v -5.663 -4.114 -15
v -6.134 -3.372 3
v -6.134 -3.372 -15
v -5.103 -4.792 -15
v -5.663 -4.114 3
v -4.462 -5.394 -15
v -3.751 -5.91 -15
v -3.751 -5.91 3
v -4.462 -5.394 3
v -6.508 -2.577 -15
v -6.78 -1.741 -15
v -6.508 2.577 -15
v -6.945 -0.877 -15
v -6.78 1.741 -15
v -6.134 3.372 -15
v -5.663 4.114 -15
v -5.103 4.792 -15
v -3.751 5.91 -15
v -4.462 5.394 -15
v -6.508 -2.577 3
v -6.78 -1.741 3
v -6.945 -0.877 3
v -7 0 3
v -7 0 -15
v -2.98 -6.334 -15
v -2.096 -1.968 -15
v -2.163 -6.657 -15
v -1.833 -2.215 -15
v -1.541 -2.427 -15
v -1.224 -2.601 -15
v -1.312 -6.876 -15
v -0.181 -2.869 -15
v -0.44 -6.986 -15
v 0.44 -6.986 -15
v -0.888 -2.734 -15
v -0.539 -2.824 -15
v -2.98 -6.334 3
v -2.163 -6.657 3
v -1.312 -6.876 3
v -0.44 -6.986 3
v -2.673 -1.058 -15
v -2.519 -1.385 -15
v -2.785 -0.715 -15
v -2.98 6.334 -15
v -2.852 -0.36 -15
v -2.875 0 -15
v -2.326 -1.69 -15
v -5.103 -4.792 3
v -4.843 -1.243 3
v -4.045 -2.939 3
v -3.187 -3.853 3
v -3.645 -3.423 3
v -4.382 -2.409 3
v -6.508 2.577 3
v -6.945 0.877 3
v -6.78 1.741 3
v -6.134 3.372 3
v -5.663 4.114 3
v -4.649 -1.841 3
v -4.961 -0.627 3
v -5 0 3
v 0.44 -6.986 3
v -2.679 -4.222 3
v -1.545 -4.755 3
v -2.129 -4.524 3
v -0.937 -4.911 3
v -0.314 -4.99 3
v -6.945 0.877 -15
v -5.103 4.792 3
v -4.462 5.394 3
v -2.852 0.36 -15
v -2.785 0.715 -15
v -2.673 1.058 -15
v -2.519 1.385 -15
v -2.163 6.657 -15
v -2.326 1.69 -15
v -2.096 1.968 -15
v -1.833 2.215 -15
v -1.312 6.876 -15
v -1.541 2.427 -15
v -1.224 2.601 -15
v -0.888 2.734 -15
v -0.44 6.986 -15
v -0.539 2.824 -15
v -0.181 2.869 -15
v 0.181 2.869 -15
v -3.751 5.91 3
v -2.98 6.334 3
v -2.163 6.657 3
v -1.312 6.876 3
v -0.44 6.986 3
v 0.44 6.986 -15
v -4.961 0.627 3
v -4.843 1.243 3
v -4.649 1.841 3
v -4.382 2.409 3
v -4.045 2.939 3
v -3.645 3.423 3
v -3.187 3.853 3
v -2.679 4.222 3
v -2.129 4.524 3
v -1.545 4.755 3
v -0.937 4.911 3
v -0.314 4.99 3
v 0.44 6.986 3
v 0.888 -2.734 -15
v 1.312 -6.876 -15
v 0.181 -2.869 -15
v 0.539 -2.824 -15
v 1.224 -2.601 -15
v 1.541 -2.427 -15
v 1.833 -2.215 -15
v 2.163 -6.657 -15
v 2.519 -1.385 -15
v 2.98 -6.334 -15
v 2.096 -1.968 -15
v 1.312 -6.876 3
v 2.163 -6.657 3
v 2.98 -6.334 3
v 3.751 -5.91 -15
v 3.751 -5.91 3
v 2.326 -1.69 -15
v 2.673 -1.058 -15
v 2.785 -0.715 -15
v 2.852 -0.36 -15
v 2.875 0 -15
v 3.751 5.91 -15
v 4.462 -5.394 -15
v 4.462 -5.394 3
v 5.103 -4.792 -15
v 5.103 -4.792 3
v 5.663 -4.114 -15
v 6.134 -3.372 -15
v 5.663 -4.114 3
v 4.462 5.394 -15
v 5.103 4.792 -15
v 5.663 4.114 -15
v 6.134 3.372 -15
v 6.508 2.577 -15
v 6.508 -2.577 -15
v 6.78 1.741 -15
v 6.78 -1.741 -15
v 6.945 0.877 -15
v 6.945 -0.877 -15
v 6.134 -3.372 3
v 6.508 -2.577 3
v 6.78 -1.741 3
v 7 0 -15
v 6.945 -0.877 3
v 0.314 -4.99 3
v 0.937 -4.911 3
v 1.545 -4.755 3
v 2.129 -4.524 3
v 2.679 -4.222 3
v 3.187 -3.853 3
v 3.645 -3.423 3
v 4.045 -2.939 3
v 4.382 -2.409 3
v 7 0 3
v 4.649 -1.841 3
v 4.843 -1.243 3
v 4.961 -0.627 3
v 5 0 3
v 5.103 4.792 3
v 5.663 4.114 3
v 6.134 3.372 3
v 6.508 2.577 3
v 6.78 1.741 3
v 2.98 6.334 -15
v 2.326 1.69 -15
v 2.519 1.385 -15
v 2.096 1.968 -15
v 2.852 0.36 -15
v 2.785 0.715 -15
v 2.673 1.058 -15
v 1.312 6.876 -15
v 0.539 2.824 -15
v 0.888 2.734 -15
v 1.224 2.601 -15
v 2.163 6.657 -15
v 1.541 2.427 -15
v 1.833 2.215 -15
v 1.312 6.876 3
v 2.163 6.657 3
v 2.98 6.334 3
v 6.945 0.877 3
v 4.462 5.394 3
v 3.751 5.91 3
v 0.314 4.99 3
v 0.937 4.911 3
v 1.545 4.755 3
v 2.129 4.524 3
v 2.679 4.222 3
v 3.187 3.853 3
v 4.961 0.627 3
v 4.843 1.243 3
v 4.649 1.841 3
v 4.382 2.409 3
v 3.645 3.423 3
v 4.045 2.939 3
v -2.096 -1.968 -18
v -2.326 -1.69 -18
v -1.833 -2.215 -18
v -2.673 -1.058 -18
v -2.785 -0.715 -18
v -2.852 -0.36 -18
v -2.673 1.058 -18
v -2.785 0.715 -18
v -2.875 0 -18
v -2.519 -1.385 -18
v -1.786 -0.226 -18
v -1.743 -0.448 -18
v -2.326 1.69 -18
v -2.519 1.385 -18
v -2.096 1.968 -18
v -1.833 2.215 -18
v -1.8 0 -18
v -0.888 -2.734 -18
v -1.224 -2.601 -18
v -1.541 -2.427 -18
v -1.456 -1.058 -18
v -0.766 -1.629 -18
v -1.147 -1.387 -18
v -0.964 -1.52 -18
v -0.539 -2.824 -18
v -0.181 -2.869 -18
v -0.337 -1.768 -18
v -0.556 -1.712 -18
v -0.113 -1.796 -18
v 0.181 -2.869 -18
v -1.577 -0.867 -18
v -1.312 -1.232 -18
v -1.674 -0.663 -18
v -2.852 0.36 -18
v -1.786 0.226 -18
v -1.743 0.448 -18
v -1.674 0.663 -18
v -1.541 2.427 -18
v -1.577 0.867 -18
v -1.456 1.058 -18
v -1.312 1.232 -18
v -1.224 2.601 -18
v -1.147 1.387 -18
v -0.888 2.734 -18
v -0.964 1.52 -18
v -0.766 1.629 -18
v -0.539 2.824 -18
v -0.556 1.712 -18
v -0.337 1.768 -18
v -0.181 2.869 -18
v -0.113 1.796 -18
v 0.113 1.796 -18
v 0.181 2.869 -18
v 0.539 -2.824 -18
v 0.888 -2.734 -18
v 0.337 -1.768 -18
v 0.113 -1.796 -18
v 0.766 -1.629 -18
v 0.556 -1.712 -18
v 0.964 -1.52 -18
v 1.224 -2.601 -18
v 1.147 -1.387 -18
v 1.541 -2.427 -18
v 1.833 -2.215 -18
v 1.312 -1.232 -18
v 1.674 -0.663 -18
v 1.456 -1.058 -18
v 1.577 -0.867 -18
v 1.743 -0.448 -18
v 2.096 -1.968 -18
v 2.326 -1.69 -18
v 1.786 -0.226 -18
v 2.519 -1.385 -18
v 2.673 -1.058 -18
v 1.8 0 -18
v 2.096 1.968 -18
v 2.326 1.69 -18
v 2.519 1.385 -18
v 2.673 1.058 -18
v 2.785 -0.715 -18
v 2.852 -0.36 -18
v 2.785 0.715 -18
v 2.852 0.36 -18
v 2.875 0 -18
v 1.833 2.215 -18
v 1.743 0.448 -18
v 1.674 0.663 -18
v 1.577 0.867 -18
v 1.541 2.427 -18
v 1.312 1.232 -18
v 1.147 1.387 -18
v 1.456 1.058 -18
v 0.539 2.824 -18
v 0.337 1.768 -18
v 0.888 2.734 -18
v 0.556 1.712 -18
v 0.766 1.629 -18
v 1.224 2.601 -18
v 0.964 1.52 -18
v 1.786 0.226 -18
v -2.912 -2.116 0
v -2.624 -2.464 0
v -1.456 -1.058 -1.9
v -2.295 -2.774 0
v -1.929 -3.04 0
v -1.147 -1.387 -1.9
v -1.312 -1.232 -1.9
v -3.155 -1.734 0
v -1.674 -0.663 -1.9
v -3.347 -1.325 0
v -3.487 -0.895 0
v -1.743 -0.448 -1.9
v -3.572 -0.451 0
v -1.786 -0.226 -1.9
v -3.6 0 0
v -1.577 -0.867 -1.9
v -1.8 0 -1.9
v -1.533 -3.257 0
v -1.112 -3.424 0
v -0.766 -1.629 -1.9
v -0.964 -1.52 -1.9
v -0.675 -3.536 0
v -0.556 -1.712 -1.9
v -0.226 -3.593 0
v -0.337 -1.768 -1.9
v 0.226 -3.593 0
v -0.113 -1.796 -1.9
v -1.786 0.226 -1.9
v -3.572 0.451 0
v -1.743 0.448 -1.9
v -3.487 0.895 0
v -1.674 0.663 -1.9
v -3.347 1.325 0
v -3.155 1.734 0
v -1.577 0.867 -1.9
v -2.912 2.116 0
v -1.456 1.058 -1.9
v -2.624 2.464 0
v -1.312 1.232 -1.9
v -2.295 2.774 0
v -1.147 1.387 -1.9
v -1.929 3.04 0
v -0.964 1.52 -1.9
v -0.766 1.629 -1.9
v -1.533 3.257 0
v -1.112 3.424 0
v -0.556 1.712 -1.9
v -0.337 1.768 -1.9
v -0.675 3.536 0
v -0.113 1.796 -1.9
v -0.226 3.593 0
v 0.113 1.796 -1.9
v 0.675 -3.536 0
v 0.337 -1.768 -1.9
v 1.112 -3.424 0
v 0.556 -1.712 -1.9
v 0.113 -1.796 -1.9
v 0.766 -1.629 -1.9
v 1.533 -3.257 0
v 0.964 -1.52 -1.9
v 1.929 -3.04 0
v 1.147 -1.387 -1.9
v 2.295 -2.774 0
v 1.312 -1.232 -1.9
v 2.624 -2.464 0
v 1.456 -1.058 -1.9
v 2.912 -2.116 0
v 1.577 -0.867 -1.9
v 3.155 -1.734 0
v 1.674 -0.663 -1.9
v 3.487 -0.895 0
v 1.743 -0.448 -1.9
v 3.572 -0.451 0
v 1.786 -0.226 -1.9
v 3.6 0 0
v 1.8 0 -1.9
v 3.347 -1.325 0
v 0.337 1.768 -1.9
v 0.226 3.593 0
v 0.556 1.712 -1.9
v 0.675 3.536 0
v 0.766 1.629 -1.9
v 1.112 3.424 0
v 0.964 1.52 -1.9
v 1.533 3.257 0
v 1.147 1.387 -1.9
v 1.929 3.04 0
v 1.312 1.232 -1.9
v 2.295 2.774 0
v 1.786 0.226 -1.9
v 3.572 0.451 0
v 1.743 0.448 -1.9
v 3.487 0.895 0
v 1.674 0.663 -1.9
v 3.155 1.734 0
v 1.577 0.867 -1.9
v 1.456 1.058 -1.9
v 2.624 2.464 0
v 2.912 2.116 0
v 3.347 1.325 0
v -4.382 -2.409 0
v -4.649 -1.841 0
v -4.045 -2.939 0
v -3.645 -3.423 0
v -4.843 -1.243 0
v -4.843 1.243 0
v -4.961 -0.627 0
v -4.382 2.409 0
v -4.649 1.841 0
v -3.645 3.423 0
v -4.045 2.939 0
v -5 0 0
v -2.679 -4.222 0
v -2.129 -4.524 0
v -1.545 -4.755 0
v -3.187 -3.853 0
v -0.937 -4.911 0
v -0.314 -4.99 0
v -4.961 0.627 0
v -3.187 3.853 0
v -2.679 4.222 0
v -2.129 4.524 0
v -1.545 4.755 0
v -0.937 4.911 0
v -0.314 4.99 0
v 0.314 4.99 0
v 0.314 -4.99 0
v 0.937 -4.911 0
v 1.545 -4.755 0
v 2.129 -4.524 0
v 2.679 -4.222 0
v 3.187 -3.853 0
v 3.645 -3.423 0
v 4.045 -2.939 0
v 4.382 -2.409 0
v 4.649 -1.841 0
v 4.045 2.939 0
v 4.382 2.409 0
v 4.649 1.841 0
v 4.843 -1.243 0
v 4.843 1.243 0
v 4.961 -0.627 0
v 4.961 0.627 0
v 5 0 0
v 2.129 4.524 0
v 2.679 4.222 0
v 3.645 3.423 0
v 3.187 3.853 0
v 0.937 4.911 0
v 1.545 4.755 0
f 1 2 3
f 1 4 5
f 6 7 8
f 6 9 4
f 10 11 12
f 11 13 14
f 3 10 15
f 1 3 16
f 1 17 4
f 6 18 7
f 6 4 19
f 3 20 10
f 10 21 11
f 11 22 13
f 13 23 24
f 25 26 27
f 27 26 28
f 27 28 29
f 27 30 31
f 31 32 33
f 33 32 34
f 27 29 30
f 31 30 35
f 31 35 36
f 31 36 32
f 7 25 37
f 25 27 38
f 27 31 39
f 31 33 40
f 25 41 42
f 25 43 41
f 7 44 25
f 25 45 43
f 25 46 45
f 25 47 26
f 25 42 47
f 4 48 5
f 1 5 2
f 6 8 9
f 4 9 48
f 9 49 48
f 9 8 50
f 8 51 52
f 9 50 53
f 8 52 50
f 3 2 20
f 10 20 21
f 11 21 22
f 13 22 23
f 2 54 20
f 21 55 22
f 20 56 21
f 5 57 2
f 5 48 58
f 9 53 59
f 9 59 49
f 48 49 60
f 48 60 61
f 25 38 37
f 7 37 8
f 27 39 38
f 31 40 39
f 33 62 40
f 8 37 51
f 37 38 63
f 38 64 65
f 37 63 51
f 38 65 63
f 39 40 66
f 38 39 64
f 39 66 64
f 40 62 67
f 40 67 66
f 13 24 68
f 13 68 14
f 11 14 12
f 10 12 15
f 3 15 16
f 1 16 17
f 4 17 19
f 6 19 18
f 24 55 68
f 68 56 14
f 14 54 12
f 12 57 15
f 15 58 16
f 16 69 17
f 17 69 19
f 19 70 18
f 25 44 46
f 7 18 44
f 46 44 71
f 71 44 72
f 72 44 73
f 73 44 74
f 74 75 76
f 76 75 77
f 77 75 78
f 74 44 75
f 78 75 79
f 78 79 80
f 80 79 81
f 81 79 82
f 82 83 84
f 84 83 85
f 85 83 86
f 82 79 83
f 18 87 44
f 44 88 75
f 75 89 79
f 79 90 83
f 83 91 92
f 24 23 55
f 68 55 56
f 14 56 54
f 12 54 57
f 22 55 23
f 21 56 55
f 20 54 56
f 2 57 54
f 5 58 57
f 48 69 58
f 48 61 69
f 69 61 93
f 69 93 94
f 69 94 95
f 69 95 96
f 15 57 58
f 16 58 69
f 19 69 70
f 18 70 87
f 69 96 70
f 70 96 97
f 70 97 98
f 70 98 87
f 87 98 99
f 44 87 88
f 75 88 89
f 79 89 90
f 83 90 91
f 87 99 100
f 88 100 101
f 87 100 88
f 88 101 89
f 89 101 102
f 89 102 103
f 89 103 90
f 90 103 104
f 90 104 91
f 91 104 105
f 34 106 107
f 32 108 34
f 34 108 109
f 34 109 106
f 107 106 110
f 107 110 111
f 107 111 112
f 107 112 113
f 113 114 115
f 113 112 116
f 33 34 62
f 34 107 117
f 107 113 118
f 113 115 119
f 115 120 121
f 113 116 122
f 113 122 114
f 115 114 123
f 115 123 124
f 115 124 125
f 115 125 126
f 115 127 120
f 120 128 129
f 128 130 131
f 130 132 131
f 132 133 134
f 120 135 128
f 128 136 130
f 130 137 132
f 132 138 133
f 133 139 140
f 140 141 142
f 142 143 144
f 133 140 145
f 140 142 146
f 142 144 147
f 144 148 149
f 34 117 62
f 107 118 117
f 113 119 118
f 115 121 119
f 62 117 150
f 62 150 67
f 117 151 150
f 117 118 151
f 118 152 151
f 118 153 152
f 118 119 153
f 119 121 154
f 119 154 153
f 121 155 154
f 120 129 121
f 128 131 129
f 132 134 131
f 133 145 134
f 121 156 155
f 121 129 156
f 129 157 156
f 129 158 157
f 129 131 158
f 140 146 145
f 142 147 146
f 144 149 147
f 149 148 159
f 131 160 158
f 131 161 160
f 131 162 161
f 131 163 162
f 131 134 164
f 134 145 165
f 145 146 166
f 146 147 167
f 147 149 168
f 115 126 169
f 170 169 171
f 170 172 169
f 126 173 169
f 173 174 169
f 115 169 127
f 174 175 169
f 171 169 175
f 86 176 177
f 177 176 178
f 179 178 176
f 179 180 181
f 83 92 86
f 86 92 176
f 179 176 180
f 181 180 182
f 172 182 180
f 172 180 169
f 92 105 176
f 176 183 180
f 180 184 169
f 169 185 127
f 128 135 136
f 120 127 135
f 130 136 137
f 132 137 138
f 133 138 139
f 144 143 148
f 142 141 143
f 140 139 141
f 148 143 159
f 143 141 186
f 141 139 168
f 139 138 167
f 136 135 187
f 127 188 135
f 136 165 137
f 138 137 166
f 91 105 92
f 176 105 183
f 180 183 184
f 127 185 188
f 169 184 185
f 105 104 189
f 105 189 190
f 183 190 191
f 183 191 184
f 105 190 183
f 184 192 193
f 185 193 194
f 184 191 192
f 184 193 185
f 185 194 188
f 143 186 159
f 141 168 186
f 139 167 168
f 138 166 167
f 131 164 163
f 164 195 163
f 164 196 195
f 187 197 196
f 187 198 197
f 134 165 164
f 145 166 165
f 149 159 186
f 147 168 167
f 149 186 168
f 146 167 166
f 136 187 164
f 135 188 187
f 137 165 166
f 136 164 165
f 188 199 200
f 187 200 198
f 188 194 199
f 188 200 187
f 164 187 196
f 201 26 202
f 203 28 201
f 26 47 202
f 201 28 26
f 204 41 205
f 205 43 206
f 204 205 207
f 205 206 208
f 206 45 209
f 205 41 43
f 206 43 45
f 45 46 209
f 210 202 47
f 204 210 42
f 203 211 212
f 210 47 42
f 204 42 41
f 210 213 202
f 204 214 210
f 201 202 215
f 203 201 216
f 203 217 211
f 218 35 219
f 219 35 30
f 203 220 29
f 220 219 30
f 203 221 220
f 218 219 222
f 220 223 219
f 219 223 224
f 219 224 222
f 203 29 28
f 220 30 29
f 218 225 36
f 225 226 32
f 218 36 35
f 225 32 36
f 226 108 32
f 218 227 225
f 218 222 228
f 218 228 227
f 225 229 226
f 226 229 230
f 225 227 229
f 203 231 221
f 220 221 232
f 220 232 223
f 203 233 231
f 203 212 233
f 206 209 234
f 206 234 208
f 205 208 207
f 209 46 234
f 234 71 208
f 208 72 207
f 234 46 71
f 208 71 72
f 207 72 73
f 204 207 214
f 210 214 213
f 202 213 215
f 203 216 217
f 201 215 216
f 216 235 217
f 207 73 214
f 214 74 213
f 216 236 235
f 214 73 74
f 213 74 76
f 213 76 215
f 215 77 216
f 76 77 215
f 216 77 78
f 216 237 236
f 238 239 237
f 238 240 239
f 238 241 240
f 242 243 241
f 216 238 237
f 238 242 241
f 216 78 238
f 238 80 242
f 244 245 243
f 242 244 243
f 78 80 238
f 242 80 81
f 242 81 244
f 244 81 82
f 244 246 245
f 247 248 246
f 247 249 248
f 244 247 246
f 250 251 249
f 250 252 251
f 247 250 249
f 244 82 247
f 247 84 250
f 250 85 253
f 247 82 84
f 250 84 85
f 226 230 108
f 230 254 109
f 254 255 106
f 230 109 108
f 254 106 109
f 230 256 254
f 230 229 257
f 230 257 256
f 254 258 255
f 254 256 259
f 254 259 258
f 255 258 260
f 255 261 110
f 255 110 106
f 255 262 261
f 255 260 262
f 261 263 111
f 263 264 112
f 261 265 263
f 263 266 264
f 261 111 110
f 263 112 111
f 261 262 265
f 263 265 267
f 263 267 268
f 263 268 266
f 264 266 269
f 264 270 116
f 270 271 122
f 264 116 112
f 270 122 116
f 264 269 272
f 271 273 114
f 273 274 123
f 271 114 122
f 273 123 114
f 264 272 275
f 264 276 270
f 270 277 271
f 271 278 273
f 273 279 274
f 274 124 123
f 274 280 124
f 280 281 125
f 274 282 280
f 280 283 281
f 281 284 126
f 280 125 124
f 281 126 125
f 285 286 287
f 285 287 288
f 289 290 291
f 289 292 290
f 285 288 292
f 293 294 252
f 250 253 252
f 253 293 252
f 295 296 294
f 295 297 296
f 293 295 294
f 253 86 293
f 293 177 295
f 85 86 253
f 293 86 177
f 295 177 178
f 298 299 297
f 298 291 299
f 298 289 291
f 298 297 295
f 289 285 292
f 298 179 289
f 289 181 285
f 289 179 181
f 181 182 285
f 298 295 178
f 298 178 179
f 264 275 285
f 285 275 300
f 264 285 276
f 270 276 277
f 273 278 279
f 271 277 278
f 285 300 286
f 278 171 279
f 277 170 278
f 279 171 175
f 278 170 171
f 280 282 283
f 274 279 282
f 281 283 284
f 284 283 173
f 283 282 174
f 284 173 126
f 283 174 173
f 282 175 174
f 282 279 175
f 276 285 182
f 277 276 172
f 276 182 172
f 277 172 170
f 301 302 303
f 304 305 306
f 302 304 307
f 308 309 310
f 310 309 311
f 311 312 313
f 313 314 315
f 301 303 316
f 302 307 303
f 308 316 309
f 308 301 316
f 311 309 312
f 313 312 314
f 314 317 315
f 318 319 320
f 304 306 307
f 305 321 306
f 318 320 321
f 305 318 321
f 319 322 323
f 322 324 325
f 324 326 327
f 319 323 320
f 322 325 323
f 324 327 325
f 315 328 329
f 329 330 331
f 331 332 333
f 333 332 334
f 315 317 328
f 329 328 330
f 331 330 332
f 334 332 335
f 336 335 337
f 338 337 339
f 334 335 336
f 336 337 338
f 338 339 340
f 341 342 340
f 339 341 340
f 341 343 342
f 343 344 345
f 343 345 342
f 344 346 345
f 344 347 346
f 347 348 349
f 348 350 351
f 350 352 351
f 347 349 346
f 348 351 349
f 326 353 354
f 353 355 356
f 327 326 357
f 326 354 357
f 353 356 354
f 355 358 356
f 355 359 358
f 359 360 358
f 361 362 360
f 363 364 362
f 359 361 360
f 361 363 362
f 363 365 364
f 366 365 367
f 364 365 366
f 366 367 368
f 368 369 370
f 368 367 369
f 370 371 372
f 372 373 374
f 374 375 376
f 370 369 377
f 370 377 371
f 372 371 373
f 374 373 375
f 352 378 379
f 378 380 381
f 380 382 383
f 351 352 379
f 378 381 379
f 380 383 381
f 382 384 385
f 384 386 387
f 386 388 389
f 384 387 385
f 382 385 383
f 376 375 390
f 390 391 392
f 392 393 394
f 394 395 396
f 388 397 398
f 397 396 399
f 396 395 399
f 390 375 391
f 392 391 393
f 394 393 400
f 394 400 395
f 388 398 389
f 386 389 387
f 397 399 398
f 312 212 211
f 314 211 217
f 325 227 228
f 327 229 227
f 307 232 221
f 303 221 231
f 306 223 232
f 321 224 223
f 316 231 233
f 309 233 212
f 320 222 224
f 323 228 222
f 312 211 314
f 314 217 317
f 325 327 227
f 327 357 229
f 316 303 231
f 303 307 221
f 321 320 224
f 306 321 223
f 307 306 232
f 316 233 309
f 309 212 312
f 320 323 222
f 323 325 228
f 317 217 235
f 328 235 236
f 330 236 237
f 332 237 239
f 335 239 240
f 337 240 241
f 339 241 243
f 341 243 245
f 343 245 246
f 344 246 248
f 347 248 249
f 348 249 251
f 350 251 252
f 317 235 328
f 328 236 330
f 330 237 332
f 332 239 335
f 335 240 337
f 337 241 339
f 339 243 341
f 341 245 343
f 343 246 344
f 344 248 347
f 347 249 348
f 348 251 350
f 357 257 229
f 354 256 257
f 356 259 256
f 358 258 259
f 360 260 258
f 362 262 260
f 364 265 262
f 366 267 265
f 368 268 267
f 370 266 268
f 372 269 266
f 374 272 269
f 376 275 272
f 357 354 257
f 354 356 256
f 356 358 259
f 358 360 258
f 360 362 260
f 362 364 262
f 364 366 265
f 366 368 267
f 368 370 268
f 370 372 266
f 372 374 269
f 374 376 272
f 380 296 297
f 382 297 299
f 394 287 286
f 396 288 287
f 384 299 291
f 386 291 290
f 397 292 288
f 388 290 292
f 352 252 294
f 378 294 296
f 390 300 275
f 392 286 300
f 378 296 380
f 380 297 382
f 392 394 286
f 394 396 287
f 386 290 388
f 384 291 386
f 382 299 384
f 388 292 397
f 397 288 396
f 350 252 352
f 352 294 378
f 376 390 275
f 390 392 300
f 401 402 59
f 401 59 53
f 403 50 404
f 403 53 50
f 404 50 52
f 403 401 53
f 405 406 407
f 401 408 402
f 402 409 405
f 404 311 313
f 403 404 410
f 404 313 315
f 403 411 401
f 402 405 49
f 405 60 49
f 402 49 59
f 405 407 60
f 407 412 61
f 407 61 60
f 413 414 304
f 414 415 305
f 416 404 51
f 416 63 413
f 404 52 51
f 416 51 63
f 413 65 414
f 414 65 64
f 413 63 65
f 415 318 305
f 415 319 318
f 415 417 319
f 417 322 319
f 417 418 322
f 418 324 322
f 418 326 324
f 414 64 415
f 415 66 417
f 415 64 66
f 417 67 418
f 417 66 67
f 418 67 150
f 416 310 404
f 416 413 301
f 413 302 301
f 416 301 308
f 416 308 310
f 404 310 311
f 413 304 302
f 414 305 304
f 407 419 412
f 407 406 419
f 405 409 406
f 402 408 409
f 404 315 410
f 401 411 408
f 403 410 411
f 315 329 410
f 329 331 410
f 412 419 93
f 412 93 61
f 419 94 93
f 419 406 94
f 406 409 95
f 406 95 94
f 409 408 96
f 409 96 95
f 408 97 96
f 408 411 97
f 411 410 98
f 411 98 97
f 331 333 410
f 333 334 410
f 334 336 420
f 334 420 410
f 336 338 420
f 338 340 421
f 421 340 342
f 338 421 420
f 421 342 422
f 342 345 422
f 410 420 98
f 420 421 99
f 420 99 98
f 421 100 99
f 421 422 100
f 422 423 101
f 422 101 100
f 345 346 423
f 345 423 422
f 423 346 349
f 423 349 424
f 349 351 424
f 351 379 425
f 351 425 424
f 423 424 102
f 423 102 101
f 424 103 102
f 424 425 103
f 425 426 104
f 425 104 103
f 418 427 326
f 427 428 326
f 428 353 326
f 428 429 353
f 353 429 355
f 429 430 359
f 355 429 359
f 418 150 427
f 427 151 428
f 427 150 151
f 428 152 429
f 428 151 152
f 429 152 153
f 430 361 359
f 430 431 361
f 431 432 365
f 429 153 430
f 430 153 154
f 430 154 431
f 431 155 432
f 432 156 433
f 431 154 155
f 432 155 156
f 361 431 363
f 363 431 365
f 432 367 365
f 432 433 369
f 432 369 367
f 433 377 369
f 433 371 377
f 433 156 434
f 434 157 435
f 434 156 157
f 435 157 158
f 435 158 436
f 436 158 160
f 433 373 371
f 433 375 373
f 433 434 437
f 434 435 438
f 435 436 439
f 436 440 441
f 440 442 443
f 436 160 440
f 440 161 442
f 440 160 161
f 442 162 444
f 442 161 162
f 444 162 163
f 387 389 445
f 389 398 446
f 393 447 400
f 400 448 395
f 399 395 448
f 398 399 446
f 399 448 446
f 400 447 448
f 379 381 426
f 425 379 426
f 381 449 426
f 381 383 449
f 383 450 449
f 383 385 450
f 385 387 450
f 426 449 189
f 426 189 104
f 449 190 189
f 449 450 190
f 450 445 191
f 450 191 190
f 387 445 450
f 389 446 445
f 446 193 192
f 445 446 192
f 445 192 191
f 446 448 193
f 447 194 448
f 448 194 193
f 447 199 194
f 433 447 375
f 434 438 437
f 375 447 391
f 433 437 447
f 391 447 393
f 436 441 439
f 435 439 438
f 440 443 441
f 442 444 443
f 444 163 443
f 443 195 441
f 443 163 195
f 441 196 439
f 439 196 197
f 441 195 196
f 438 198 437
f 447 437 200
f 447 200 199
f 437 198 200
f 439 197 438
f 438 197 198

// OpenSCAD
$fn = 50;


difference() {
	union() {
		translate(v = [0, 0, -15.0000000000]) {
			cylinder(h = 18, r = 7.0000000000);
		}
		#translate(v = [0, 0, -18.0000000000]) {
			cylinder(h = 18, r = 2.8750000000);
		}
	}
	union() {
		translate(v = [0, 0, 0]) {
			rotate(a = [0, 0, 0]) {
				difference() {
					union() {
						translate(v = [0, 0, -18.0000000000]) {
							cylinder(h = 18, r = 1.5000000000);
						}
						translate(v = [0, 0, -1.9000000000]) {
							cylinder(h = 1.9000000000, r1 = 1.8000000000, r2 = 3.6000000000);
						}
						translate(v = [0, 0, -18.0000000000]) {
							cylinder(h = 18, r = 1.8000000000);
						}
						translate(v = [0, 0, -18.0000000000]) {
							cylinder(h = 18, r = 1.5000000000);
						}
					}
					union();
				}
			}
		}
		#cylinder(h = 3, r = 5.0000000000);
	}
}
